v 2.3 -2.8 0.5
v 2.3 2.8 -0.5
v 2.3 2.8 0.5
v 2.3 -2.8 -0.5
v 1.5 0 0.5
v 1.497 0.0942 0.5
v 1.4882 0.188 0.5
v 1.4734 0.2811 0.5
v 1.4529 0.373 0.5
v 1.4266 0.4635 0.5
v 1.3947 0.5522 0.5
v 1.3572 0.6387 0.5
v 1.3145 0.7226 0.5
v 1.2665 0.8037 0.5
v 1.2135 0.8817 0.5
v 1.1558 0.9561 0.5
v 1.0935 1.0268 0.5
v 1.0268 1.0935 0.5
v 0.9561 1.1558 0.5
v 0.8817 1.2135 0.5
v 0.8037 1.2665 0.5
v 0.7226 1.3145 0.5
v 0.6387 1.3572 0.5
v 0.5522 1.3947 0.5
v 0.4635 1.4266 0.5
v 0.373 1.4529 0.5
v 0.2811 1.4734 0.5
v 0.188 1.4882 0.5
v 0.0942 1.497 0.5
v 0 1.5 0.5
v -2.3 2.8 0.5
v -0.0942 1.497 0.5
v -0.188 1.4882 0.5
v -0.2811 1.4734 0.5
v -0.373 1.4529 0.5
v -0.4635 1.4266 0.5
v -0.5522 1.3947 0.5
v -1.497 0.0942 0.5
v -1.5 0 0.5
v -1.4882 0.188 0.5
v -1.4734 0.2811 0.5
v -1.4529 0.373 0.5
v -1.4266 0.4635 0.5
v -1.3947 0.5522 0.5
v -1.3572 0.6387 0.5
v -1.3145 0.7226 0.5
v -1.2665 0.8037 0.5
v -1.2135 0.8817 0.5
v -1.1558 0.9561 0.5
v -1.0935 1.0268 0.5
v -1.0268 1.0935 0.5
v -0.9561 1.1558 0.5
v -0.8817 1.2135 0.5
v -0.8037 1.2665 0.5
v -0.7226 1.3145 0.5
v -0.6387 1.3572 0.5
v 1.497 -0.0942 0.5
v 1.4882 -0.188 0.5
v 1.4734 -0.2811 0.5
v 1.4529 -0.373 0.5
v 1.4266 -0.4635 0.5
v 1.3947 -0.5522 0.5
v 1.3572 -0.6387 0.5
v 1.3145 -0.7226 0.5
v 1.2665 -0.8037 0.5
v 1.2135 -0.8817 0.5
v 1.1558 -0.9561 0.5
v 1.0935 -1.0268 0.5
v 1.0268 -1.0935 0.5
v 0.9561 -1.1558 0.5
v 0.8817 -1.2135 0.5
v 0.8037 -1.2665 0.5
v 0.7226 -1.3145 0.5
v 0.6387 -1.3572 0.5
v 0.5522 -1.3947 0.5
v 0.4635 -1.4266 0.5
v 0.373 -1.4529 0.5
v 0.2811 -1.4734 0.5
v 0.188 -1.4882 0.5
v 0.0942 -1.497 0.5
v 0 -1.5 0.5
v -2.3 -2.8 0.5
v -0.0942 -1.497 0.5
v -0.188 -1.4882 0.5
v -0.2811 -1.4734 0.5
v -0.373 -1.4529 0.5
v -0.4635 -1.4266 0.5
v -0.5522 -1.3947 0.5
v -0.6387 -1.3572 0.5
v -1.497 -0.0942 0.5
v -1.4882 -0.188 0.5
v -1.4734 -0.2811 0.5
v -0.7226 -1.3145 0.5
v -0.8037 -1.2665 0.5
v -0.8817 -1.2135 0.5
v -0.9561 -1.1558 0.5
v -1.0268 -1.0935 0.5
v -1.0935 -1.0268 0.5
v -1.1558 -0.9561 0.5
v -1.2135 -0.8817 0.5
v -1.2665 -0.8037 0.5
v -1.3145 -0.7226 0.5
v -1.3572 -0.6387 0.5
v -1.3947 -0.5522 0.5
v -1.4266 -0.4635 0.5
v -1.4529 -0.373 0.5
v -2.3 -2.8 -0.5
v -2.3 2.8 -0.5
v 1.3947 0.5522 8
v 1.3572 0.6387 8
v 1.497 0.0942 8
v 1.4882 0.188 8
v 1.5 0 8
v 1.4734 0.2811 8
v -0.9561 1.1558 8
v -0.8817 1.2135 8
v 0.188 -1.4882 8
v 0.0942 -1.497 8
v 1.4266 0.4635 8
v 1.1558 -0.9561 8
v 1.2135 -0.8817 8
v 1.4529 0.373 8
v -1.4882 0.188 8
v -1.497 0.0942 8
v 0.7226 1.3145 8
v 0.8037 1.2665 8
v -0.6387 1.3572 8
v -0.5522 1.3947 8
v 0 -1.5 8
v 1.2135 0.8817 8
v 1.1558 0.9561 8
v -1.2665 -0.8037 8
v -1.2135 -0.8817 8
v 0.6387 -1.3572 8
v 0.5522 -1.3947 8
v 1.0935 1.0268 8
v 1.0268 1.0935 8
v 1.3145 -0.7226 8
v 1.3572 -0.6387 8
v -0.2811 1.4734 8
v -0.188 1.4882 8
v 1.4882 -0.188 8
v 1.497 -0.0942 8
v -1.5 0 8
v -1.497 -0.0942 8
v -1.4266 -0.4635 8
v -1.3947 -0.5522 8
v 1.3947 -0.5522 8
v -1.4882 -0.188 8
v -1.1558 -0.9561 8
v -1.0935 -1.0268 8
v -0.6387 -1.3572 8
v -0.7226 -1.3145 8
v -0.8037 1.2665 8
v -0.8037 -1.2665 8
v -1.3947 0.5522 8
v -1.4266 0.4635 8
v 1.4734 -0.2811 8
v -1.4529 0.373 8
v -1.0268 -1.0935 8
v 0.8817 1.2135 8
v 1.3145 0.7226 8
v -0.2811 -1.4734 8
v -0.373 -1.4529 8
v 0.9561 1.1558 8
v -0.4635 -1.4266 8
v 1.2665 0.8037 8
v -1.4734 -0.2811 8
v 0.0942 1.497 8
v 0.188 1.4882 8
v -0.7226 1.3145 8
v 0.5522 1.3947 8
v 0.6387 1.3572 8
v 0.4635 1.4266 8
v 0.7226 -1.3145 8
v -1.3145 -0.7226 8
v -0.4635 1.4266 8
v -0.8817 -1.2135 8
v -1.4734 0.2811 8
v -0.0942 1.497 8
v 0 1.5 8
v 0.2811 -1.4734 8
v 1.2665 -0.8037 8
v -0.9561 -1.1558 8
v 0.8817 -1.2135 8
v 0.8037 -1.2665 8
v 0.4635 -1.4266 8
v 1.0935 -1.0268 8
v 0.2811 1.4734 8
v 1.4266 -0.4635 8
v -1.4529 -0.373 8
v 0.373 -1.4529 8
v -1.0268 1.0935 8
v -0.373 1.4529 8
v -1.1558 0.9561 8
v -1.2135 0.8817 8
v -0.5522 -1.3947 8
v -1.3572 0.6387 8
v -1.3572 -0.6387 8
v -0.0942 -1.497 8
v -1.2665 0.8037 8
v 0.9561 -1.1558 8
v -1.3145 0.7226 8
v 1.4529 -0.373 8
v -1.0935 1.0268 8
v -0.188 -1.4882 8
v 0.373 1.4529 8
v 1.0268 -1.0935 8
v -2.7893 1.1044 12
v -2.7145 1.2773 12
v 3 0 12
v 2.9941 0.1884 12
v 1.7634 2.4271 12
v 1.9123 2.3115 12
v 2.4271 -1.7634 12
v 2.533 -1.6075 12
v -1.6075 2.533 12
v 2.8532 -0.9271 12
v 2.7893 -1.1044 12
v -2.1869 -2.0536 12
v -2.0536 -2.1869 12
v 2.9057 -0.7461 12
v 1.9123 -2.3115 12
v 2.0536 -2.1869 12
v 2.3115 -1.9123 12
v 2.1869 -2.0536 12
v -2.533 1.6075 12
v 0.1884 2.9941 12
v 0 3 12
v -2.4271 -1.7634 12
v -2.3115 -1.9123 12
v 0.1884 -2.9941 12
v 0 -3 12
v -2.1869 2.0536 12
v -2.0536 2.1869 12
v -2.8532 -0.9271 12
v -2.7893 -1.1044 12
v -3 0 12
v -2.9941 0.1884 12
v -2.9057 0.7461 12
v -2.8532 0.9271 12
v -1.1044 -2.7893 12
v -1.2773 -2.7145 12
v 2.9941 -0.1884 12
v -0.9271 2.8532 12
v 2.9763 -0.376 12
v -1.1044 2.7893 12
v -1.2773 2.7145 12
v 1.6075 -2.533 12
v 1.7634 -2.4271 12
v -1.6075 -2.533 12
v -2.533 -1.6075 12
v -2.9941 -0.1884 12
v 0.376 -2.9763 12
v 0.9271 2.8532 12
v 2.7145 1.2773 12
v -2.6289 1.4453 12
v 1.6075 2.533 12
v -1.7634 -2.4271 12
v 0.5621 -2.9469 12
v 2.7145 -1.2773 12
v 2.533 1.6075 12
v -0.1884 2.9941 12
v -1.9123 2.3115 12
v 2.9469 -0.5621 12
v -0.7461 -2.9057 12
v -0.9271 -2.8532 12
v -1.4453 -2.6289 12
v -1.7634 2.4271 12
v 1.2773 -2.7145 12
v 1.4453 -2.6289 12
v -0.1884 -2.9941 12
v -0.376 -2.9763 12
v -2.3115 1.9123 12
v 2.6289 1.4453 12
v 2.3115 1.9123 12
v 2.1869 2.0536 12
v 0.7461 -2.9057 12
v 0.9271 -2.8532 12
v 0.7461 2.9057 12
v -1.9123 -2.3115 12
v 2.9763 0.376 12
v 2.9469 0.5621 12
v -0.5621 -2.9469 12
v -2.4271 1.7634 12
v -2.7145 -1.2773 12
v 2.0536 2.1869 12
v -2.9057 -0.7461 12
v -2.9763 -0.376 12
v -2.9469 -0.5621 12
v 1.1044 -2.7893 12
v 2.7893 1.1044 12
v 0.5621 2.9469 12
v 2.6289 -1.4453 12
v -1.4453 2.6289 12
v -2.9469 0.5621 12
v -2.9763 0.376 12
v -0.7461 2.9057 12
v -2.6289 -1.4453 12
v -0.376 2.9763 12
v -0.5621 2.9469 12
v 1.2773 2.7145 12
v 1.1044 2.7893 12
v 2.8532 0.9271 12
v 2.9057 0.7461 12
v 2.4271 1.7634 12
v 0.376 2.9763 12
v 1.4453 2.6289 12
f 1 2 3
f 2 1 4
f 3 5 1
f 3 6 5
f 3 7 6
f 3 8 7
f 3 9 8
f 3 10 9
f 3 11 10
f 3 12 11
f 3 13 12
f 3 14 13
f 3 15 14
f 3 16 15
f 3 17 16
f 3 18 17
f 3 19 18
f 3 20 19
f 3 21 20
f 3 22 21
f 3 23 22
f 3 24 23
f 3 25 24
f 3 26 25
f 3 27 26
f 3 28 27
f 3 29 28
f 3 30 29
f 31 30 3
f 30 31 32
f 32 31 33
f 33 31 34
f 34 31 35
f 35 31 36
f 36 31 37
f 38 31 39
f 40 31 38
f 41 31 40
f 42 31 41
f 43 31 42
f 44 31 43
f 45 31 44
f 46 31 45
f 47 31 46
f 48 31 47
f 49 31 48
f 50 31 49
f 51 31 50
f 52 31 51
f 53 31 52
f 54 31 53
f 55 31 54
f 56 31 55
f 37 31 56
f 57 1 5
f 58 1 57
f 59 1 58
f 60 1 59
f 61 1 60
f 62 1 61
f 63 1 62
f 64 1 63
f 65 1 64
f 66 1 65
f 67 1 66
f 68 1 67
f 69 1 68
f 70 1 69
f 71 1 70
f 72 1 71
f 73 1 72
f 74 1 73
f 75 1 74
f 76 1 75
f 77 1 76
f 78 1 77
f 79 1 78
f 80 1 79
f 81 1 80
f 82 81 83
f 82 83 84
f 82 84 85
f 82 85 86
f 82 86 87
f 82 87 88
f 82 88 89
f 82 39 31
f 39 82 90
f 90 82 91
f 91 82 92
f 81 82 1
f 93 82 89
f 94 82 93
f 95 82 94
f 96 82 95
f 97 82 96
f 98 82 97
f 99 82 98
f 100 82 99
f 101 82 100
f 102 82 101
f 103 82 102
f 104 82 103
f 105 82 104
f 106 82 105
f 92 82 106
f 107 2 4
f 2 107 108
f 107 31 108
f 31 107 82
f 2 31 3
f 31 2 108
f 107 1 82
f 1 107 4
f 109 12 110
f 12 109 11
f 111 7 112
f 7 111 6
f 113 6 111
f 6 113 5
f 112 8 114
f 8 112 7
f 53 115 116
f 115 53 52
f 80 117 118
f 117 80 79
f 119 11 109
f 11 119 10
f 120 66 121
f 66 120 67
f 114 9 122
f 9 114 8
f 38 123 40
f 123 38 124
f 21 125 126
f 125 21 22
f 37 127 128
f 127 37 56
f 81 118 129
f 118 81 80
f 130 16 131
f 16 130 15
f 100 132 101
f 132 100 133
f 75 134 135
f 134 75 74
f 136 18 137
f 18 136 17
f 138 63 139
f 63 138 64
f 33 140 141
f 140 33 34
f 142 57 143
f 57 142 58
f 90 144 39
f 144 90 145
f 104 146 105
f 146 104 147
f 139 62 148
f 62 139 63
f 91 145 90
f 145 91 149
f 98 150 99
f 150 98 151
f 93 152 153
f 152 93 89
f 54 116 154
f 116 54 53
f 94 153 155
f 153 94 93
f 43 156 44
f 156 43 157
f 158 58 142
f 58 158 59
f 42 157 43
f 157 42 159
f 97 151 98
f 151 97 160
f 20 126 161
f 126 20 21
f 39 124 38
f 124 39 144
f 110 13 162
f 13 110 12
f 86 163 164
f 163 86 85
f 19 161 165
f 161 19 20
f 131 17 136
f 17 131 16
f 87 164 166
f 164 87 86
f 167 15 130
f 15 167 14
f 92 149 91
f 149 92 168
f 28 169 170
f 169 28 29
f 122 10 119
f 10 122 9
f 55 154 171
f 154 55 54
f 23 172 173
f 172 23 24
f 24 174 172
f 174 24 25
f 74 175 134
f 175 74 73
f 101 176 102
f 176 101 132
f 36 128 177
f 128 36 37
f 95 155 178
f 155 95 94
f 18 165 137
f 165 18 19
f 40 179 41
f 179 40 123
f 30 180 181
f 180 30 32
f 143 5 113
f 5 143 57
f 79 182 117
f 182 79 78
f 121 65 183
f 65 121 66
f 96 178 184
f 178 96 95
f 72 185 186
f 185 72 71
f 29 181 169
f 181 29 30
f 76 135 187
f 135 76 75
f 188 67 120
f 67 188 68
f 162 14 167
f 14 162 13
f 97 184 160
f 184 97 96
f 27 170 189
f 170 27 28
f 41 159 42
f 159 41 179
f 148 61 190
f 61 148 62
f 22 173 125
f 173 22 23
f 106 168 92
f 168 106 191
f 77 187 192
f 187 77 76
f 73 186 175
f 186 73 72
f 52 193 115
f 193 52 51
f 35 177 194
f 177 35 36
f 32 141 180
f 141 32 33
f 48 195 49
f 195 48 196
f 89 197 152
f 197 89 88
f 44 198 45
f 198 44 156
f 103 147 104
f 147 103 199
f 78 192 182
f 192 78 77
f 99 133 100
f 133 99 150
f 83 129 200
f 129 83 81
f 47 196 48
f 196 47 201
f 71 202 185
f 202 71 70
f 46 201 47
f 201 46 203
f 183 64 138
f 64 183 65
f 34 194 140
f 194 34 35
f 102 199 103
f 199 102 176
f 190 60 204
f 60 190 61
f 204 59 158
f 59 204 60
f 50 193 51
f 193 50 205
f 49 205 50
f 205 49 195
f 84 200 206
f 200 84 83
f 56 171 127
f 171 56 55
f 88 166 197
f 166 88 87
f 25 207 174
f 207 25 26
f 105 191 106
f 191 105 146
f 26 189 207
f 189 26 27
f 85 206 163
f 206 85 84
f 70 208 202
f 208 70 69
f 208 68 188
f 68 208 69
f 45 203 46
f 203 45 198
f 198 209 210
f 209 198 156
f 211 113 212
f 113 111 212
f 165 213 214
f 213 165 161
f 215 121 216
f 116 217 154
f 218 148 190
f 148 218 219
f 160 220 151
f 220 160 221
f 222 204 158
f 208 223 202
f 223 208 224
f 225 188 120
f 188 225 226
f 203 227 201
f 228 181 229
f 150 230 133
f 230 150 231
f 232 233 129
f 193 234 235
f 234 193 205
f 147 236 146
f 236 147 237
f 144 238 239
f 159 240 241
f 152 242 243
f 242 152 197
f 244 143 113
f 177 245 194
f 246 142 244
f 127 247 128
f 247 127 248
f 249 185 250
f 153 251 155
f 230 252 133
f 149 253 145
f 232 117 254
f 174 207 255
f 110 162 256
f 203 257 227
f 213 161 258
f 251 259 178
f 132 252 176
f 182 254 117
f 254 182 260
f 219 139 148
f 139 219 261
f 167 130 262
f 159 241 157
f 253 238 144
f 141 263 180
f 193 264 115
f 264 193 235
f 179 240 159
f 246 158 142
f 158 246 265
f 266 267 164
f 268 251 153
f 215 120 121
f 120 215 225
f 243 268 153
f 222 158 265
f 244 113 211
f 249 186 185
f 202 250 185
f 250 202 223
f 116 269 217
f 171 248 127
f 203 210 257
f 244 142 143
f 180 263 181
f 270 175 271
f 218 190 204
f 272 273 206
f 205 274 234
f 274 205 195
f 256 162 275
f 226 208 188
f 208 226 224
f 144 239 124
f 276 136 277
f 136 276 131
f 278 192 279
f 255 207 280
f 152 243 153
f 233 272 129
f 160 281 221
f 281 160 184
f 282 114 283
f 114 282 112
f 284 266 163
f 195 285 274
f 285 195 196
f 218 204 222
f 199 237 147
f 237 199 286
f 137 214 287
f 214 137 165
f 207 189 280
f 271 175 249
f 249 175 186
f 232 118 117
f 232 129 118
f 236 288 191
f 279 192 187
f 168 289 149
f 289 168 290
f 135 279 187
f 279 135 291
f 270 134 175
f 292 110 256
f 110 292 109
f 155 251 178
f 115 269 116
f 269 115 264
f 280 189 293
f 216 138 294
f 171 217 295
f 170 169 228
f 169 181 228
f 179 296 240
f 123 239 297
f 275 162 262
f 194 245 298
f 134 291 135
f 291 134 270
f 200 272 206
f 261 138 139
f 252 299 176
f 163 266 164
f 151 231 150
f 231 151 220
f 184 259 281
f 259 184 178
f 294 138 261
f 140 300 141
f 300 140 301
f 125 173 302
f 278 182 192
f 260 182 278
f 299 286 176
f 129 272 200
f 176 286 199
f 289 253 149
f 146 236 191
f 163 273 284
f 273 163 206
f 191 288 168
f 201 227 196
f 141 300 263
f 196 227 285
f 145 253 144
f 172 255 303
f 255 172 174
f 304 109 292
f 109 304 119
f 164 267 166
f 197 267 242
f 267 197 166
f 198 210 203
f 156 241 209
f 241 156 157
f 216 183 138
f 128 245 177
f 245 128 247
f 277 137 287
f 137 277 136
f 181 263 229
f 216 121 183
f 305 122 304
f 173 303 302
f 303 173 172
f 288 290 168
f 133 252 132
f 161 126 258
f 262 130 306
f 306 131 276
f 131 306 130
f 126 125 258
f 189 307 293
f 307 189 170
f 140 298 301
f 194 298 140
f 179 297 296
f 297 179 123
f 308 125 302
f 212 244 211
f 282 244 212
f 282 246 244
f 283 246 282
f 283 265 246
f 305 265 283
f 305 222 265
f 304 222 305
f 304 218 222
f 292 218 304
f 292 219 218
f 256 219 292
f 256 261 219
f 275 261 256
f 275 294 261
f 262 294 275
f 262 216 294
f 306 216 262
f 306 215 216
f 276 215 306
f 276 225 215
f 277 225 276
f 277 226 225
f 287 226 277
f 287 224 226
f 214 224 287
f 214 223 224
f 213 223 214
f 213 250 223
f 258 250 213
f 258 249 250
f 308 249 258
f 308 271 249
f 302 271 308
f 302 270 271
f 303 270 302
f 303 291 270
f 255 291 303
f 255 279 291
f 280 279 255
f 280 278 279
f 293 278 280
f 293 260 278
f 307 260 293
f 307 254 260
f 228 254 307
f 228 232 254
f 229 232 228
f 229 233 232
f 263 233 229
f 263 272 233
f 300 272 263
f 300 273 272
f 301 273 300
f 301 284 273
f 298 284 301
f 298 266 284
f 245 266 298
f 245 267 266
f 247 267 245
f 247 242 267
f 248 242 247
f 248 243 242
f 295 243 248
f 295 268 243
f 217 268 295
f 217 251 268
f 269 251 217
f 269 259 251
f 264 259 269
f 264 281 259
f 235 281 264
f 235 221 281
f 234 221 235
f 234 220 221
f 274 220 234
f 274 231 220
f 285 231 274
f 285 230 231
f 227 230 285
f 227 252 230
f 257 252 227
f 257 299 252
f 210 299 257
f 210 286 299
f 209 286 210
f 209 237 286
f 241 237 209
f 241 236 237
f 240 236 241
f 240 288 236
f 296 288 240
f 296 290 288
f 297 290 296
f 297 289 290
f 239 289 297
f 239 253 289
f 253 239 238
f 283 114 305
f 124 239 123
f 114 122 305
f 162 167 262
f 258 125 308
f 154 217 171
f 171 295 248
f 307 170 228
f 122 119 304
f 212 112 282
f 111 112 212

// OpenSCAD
$fn=100;

cube([4.6,5.6,1],center=true);

cylinder(h=8,r=1.5,center=false);

translate([0,0,8]) cylinder(h=4,r1=1.5,r2=3,center=false);
